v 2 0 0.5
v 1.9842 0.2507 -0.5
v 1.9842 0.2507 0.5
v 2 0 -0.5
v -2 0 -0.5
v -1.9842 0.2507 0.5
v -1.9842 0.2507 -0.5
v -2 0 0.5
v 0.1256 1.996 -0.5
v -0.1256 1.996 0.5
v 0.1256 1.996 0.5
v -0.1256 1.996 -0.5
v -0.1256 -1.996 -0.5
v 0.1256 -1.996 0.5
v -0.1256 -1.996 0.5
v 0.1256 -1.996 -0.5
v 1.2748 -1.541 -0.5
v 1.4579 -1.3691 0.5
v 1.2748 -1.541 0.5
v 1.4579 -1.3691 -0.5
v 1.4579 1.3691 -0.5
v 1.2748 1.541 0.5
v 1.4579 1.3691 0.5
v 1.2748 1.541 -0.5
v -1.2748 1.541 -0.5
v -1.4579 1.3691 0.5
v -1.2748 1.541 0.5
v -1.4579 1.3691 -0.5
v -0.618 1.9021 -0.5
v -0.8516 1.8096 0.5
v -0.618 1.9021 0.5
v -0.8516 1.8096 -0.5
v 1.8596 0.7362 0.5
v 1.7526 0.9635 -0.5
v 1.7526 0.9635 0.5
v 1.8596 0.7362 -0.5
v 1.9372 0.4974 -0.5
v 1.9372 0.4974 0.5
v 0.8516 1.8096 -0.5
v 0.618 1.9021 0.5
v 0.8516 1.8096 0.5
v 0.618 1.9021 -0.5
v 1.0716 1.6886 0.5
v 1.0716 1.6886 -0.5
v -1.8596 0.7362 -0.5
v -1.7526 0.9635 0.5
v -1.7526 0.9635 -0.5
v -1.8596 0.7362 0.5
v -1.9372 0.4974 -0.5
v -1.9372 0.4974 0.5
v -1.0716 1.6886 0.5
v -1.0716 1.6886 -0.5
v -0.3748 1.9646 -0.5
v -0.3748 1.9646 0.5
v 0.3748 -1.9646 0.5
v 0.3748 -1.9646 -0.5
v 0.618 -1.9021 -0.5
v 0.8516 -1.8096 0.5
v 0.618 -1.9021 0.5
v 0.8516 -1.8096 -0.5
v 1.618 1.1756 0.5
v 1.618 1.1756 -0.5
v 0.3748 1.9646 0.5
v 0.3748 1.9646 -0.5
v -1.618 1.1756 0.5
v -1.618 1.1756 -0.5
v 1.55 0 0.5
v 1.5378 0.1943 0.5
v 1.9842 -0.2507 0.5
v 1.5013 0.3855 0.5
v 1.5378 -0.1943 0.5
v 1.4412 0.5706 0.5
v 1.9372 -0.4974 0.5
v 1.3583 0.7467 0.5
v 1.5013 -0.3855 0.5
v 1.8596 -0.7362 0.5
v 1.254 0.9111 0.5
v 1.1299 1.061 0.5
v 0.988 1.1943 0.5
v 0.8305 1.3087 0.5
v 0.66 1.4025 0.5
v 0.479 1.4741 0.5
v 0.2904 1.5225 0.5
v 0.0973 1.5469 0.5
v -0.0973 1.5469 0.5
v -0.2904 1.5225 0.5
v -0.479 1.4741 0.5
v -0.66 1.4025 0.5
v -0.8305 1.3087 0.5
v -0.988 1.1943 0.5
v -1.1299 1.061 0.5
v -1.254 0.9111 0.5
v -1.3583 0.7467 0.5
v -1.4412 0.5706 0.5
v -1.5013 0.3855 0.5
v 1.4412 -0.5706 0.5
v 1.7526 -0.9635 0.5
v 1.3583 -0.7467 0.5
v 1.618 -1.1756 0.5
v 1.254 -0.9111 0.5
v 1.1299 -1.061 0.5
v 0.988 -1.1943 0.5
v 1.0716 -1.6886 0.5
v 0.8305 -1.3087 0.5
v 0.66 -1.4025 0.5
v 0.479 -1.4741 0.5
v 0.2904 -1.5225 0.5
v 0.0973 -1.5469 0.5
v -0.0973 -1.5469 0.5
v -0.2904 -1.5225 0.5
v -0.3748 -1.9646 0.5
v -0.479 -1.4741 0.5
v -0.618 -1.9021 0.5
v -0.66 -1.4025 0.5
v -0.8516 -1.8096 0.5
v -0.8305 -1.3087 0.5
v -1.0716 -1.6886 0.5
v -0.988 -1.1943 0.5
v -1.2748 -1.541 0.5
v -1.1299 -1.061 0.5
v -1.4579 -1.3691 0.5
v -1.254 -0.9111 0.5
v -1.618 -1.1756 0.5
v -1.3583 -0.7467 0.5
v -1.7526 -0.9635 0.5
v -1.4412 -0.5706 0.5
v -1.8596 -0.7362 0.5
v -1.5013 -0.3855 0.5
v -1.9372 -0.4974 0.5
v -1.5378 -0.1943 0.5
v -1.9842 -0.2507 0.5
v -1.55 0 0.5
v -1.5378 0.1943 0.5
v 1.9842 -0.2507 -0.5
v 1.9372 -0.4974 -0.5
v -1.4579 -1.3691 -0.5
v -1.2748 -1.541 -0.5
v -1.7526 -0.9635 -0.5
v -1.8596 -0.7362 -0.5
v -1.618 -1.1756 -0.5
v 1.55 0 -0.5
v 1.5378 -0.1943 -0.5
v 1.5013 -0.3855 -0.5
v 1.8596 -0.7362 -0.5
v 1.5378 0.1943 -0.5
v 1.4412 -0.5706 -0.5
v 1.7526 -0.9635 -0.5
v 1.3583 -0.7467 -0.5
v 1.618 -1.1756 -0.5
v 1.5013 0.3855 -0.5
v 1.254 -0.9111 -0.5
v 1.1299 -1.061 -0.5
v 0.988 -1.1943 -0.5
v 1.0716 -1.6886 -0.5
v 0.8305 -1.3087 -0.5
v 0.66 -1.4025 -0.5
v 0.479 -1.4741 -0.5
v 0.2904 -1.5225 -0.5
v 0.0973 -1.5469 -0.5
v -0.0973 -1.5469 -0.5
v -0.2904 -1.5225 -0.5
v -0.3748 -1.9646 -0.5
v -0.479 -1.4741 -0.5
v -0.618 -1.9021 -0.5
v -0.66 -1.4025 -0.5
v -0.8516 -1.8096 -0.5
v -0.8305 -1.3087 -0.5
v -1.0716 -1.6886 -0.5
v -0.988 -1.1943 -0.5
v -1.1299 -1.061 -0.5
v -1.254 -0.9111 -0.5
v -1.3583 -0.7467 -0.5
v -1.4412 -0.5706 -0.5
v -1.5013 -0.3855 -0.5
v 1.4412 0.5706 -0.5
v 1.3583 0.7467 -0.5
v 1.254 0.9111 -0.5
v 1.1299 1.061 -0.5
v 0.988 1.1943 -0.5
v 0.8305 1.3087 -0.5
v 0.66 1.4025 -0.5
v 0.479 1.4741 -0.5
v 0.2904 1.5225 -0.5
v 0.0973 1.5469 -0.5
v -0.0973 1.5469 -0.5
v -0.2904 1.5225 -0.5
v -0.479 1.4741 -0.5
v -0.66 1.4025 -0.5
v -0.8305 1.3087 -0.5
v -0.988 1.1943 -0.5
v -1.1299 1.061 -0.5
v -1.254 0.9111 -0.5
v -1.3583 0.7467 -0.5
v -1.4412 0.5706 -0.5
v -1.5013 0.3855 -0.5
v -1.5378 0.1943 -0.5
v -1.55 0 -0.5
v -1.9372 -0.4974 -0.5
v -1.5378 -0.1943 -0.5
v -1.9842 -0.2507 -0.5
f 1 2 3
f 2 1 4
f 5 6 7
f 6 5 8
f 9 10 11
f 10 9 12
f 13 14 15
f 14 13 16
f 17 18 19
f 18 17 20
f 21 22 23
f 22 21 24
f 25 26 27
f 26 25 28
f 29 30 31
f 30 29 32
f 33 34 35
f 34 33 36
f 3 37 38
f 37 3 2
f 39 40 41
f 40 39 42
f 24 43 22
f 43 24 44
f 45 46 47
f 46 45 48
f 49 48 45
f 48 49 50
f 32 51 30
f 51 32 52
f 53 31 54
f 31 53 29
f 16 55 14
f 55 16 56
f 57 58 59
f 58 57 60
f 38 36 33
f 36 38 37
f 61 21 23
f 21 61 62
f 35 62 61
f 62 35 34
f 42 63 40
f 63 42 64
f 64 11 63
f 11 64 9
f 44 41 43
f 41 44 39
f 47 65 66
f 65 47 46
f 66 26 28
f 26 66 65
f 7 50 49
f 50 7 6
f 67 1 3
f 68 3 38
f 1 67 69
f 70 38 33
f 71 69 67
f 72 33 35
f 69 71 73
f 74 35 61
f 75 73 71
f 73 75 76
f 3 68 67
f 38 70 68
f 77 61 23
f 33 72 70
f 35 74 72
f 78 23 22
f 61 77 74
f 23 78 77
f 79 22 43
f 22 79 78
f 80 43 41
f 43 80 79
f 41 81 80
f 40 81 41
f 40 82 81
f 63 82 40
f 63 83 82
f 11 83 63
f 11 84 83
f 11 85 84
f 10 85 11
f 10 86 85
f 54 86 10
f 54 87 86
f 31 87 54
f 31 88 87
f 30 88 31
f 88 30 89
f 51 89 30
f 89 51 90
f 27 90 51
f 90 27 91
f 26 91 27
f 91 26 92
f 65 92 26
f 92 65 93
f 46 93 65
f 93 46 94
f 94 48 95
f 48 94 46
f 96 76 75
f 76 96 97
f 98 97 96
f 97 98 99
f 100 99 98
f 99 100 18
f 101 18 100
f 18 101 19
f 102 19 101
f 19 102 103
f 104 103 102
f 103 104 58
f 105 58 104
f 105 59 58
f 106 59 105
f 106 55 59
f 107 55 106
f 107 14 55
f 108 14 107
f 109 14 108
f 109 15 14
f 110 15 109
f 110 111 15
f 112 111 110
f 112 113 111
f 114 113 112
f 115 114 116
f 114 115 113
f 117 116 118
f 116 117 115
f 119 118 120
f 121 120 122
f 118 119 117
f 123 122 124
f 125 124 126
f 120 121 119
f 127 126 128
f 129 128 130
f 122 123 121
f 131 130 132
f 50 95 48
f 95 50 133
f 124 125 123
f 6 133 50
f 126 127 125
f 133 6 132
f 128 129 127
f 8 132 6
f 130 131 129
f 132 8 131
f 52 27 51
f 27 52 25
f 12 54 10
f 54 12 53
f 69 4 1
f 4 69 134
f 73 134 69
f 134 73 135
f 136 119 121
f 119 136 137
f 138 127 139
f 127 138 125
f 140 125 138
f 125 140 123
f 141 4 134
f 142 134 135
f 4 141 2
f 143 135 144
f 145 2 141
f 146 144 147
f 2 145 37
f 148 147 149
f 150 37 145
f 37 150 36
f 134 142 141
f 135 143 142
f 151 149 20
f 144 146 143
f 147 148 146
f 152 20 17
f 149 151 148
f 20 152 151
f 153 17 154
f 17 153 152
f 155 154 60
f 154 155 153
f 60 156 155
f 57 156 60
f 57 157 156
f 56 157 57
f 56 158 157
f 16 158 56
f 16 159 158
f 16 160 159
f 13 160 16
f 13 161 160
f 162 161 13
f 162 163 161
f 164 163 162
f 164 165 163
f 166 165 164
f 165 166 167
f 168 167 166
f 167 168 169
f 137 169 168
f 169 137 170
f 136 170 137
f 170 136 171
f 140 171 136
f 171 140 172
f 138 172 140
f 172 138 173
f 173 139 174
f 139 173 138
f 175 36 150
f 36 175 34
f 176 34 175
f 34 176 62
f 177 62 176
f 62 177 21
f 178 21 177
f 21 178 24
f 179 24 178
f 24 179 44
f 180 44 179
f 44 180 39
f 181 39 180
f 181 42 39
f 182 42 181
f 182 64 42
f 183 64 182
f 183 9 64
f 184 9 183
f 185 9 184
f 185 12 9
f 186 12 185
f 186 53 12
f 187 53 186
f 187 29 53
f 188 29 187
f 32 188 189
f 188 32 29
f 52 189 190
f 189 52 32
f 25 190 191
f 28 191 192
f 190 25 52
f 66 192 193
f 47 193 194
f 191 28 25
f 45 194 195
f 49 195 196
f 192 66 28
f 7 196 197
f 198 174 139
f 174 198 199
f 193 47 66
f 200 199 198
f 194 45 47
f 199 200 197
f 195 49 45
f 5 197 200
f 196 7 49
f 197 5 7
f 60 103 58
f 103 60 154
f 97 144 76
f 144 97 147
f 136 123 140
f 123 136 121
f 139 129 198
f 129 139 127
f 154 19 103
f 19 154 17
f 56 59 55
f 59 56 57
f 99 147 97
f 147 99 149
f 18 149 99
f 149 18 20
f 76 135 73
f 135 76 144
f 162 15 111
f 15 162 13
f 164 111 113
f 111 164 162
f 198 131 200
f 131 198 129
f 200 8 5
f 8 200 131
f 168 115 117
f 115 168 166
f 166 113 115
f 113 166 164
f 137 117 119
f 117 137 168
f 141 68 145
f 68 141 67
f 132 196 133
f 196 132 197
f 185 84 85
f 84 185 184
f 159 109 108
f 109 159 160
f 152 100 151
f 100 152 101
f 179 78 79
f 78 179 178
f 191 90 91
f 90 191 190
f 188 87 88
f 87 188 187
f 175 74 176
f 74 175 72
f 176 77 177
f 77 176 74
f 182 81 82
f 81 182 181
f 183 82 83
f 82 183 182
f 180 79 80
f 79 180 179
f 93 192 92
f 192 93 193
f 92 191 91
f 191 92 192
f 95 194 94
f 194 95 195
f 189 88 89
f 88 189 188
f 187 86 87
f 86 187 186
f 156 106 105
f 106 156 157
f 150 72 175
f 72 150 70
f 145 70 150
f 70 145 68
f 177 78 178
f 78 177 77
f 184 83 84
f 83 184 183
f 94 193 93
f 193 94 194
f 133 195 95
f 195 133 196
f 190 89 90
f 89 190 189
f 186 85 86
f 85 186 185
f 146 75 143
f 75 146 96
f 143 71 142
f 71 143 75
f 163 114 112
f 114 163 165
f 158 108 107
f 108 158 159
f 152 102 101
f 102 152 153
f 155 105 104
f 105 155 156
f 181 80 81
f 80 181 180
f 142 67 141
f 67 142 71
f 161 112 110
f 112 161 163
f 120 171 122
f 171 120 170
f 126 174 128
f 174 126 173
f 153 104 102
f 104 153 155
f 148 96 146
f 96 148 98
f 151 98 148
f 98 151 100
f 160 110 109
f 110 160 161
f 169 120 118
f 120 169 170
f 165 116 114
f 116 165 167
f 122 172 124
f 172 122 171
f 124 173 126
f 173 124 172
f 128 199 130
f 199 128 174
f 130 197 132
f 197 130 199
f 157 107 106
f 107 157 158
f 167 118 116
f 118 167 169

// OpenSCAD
$fn = 50;


difference() {
	union() {
		translate(v = [0, 0, -0.5000000000]) {
			cylinder(h = 1, r = 2.0000000000);
		}
	}
	union() {
		translate(v = [0, 0, -100.0000000000]) {
			cylinder(h = 200, r = 1.5500000000);
		}
	}
}
